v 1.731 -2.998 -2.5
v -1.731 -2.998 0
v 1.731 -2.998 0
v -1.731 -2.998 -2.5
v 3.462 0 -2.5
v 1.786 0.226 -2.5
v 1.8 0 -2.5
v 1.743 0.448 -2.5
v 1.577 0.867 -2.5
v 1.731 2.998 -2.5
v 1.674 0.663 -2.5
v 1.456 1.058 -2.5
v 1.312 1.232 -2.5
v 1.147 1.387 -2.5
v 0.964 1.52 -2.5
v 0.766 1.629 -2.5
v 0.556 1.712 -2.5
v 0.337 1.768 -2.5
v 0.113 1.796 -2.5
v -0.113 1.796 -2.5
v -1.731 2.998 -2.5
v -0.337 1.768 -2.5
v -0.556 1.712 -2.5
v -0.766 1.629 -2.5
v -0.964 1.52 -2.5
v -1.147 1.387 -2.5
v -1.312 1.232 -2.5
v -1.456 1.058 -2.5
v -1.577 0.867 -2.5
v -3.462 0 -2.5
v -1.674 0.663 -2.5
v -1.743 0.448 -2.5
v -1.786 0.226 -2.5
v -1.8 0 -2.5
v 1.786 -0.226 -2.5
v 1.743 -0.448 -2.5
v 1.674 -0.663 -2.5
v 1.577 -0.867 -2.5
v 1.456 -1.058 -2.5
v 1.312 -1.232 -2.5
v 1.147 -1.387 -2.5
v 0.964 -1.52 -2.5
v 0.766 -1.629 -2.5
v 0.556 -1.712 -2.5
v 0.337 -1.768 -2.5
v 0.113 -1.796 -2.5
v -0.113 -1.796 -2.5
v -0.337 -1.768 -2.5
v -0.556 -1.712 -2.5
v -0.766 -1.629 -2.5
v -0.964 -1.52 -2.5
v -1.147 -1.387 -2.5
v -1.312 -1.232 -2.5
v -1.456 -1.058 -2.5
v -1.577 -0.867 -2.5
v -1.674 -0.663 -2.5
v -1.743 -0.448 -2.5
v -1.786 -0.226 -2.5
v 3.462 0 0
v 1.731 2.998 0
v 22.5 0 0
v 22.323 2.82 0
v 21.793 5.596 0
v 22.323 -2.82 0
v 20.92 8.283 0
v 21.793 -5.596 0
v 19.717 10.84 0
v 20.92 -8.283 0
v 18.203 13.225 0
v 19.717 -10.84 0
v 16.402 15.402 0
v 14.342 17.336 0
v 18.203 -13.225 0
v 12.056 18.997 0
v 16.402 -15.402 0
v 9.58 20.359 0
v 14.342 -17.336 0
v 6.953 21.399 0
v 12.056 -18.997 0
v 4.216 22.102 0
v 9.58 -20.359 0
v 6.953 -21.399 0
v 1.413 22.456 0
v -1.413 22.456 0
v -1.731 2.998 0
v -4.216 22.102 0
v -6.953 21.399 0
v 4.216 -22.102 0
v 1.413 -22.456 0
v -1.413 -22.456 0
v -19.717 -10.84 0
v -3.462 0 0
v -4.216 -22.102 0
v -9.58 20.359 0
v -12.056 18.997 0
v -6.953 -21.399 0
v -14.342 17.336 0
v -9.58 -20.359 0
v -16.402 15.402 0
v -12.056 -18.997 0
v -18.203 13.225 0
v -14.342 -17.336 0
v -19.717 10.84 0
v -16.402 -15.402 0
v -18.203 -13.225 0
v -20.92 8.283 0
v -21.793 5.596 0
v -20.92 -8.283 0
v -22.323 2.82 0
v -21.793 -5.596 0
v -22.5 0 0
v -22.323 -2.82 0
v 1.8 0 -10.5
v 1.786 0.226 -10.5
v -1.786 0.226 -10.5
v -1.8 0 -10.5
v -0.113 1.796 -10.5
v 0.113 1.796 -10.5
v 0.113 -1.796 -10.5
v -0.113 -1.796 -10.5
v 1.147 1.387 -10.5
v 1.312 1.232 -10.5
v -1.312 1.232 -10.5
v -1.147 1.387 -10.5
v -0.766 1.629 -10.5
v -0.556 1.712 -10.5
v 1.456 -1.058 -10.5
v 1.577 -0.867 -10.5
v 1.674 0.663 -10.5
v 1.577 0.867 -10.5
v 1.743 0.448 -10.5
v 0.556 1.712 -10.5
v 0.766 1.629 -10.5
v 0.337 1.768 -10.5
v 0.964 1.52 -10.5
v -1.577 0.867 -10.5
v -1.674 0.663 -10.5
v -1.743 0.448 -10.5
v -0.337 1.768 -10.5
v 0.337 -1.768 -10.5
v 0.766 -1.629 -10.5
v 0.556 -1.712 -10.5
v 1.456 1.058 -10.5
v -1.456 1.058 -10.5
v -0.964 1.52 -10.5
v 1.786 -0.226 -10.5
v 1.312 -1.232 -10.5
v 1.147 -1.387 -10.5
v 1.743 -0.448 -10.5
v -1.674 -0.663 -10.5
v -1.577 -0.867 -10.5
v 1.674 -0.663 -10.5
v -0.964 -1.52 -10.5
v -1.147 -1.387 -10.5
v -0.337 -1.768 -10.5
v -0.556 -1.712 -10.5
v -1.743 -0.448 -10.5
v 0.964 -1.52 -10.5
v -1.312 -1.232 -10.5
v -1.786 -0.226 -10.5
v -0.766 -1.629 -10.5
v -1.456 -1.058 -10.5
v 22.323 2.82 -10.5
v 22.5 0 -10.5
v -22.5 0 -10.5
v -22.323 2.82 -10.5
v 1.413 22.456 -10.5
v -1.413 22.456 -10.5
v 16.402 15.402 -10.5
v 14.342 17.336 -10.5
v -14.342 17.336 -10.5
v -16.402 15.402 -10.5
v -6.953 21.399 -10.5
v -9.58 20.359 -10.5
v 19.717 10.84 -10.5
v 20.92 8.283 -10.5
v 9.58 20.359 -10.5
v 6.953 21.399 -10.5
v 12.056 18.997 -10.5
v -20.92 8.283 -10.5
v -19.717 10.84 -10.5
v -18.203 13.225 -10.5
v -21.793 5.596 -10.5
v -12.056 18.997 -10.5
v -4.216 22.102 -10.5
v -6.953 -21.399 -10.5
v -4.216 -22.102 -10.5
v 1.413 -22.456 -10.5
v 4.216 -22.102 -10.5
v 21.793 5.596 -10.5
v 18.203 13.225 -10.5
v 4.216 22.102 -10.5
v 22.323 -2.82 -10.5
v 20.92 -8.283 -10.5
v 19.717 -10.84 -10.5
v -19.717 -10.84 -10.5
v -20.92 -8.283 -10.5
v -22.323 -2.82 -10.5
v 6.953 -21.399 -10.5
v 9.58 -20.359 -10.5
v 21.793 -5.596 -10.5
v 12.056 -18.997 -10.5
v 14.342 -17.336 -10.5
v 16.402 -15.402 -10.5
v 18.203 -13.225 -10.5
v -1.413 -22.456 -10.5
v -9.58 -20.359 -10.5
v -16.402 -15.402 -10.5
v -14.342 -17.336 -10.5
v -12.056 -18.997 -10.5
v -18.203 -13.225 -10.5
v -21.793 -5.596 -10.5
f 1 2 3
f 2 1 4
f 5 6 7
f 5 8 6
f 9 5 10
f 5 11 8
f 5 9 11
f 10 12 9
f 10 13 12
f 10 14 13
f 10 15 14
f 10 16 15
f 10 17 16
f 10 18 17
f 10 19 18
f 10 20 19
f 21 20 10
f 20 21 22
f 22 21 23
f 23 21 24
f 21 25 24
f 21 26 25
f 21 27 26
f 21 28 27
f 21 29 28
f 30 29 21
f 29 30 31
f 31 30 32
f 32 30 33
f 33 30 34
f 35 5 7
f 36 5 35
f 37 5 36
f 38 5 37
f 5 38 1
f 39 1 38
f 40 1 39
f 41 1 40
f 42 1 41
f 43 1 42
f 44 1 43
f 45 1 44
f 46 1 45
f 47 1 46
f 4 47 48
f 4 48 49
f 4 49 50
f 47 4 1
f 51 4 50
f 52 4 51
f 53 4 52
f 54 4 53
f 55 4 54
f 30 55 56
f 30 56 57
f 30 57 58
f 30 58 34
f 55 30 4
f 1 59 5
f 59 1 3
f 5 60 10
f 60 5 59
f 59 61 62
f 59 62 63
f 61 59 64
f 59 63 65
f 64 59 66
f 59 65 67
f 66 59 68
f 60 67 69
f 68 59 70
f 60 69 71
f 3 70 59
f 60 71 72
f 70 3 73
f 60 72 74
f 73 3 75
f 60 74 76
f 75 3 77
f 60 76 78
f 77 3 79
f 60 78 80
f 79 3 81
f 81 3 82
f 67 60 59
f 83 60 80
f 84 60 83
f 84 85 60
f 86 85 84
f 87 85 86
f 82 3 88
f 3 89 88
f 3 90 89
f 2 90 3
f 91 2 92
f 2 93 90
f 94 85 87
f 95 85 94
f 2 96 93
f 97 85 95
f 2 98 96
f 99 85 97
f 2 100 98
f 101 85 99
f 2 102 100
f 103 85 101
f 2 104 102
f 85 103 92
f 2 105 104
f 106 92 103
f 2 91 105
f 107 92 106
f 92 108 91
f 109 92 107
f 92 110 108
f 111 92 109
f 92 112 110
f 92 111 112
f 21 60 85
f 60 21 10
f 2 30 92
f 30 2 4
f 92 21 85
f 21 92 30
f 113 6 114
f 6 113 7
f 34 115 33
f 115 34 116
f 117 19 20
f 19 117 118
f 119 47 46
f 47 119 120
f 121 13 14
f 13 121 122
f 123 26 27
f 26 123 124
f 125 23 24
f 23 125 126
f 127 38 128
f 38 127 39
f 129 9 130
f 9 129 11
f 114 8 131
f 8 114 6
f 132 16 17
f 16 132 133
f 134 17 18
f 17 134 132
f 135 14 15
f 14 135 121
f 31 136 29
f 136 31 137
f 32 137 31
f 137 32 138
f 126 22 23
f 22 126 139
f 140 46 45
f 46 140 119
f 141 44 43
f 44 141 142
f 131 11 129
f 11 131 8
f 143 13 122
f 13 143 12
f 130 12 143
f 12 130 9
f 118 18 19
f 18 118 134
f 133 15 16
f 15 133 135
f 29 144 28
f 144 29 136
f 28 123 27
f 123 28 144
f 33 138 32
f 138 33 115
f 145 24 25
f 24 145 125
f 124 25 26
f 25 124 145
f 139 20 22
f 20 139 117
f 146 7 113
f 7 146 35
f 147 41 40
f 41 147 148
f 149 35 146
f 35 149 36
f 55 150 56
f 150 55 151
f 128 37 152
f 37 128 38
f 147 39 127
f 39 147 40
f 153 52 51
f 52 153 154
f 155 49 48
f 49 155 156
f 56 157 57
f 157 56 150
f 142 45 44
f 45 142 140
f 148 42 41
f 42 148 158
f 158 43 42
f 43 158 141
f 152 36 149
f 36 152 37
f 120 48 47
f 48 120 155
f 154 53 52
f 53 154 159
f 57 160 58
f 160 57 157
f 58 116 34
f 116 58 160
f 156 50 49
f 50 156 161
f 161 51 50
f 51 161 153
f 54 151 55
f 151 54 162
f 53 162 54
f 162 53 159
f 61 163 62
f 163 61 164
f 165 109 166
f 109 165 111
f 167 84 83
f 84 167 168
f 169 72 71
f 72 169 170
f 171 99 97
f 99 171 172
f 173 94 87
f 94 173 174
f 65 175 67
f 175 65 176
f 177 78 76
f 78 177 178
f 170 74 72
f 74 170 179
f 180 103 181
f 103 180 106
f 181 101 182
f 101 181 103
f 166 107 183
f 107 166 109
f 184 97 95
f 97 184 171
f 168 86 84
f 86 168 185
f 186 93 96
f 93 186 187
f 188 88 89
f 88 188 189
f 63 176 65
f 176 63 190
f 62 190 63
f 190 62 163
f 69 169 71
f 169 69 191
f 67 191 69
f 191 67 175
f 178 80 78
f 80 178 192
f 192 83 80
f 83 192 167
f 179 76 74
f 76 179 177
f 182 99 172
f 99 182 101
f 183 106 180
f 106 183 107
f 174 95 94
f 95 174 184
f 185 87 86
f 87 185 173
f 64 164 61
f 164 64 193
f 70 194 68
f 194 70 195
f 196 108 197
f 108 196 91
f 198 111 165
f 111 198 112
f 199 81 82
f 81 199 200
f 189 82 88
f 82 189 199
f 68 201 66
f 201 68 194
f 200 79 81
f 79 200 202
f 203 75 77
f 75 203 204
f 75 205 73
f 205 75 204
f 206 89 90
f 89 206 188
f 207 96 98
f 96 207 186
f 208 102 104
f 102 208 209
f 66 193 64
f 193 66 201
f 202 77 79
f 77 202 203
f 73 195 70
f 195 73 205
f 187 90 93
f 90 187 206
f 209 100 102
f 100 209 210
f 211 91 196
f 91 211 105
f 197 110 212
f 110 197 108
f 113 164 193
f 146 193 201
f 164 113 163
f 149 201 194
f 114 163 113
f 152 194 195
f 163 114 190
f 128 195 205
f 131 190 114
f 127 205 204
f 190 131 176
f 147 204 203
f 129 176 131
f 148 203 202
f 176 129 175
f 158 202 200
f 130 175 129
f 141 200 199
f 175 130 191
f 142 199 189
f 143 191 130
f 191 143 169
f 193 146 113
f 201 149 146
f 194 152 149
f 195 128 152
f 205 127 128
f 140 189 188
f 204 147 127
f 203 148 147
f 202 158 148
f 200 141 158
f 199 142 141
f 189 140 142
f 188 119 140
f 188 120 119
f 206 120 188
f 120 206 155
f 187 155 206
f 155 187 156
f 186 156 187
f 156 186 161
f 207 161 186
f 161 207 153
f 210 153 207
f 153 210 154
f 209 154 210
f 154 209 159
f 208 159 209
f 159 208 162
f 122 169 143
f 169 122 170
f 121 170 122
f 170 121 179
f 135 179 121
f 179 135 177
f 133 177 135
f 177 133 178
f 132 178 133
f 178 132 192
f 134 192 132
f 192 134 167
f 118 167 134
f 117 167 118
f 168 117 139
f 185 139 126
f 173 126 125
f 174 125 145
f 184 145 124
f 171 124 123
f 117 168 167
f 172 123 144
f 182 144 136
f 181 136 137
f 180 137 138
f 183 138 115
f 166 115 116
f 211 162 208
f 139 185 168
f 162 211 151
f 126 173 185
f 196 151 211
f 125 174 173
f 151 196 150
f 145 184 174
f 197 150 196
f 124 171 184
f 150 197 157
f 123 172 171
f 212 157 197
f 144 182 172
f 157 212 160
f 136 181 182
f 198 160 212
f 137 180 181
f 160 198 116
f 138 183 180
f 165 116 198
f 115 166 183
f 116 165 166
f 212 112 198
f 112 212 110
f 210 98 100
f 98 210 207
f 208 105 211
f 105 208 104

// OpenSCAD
$fn = 50;


difference() {
	union() {
		translate(v = [0, 0, -10.5000000000]) {
			cylinder(h = 10.5000000000, r = 22.5000000000);
		}
	}
	union() {
		translate(v = [0, 0, 0]) {
			rotate(a = [0, 0, 0]) {
				difference() {
					union() {
						translate(v = [0, 0, -2.5000000000]) {
							linear_extrude(height = 2.5000000000) {
								polygon(points = [[3.4620000000, 0.0000000000], [1.7310000000, 2.9981799479], [-1.7310000000, 2.9981799479], [-3.4620000000, 0.0000000000], [-1.7310000000, -2.9981799479], [1.7310000000, -2.9981799479]]);
							}
						}
					}
					union();
				}
			}
		}
		#translate(v = [0, 0, -100.0000000000]) {
			cylinder(h = 200, r = 1.8000000000);
		}
	}
}
